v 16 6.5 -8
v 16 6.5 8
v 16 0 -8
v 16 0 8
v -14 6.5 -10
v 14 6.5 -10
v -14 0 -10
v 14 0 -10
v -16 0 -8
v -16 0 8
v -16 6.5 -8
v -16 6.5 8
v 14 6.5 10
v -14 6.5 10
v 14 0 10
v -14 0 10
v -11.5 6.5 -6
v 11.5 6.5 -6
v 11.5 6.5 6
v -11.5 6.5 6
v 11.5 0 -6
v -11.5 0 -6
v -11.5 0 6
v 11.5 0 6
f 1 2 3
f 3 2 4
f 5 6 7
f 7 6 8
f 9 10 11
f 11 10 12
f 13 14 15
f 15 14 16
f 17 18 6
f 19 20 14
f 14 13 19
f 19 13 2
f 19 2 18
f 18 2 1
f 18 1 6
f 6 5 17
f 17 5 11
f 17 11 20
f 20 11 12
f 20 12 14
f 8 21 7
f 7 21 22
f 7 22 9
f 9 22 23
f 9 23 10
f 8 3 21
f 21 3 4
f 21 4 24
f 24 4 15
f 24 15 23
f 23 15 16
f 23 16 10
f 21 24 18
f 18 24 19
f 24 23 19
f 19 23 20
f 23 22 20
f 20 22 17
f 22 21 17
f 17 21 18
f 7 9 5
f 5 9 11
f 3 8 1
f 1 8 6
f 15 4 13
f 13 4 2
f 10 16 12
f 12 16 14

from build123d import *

# Parameters (mm, degrees)
SKETCH1_W           = 32
SKETCH1_H           = 20
BOSS_EXTRUDE1_DEPTH = 6.5
SKETCH2_W           = 23
SKETCH2_H           = 12
CUT_EXTRUDE1_DEPTH  = 20.956202043
CHAMFER1_SIZE       = 2


with BuildPart() as part:
    # Sketch1 → Boss-Extrude1 (new body)
    with BuildSketch(Plane(origin=(0, 0, 0), x_dir=(1, 0, 0), z_dir=(0, 1, 0))):
        Rectangle(SKETCH1_W, SKETCH1_H)
    extrude(amount=BOSS_EXTRUDE1_DEPTH)

    # Sketch2 → Cut-Extrude1 (cut, through all)
    with BuildSketch(Plane(origin=(0, 6.5, 0), x_dir=(1, 0, 0), z_dir=(0, 1, 0))):
        Rectangle(SKETCH2_W, SKETCH2_H)
    extrude(amount=-CUT_EXTRUDE1_DEPTH, mode=Mode.SUBTRACT)

    # Chamfer1
    chamfer1_edges = [part.edges().sort_by_distance(p)[0] for p in [
        (16, 3.25, 10),
        (-16, 3.25, 10),
        (-16, 3.25, -10),
        (16, 3.25, -10),
    ]]
    chamfer(chamfer1_edges, length=CHAMFER1_SIZE)


solid = part.part
